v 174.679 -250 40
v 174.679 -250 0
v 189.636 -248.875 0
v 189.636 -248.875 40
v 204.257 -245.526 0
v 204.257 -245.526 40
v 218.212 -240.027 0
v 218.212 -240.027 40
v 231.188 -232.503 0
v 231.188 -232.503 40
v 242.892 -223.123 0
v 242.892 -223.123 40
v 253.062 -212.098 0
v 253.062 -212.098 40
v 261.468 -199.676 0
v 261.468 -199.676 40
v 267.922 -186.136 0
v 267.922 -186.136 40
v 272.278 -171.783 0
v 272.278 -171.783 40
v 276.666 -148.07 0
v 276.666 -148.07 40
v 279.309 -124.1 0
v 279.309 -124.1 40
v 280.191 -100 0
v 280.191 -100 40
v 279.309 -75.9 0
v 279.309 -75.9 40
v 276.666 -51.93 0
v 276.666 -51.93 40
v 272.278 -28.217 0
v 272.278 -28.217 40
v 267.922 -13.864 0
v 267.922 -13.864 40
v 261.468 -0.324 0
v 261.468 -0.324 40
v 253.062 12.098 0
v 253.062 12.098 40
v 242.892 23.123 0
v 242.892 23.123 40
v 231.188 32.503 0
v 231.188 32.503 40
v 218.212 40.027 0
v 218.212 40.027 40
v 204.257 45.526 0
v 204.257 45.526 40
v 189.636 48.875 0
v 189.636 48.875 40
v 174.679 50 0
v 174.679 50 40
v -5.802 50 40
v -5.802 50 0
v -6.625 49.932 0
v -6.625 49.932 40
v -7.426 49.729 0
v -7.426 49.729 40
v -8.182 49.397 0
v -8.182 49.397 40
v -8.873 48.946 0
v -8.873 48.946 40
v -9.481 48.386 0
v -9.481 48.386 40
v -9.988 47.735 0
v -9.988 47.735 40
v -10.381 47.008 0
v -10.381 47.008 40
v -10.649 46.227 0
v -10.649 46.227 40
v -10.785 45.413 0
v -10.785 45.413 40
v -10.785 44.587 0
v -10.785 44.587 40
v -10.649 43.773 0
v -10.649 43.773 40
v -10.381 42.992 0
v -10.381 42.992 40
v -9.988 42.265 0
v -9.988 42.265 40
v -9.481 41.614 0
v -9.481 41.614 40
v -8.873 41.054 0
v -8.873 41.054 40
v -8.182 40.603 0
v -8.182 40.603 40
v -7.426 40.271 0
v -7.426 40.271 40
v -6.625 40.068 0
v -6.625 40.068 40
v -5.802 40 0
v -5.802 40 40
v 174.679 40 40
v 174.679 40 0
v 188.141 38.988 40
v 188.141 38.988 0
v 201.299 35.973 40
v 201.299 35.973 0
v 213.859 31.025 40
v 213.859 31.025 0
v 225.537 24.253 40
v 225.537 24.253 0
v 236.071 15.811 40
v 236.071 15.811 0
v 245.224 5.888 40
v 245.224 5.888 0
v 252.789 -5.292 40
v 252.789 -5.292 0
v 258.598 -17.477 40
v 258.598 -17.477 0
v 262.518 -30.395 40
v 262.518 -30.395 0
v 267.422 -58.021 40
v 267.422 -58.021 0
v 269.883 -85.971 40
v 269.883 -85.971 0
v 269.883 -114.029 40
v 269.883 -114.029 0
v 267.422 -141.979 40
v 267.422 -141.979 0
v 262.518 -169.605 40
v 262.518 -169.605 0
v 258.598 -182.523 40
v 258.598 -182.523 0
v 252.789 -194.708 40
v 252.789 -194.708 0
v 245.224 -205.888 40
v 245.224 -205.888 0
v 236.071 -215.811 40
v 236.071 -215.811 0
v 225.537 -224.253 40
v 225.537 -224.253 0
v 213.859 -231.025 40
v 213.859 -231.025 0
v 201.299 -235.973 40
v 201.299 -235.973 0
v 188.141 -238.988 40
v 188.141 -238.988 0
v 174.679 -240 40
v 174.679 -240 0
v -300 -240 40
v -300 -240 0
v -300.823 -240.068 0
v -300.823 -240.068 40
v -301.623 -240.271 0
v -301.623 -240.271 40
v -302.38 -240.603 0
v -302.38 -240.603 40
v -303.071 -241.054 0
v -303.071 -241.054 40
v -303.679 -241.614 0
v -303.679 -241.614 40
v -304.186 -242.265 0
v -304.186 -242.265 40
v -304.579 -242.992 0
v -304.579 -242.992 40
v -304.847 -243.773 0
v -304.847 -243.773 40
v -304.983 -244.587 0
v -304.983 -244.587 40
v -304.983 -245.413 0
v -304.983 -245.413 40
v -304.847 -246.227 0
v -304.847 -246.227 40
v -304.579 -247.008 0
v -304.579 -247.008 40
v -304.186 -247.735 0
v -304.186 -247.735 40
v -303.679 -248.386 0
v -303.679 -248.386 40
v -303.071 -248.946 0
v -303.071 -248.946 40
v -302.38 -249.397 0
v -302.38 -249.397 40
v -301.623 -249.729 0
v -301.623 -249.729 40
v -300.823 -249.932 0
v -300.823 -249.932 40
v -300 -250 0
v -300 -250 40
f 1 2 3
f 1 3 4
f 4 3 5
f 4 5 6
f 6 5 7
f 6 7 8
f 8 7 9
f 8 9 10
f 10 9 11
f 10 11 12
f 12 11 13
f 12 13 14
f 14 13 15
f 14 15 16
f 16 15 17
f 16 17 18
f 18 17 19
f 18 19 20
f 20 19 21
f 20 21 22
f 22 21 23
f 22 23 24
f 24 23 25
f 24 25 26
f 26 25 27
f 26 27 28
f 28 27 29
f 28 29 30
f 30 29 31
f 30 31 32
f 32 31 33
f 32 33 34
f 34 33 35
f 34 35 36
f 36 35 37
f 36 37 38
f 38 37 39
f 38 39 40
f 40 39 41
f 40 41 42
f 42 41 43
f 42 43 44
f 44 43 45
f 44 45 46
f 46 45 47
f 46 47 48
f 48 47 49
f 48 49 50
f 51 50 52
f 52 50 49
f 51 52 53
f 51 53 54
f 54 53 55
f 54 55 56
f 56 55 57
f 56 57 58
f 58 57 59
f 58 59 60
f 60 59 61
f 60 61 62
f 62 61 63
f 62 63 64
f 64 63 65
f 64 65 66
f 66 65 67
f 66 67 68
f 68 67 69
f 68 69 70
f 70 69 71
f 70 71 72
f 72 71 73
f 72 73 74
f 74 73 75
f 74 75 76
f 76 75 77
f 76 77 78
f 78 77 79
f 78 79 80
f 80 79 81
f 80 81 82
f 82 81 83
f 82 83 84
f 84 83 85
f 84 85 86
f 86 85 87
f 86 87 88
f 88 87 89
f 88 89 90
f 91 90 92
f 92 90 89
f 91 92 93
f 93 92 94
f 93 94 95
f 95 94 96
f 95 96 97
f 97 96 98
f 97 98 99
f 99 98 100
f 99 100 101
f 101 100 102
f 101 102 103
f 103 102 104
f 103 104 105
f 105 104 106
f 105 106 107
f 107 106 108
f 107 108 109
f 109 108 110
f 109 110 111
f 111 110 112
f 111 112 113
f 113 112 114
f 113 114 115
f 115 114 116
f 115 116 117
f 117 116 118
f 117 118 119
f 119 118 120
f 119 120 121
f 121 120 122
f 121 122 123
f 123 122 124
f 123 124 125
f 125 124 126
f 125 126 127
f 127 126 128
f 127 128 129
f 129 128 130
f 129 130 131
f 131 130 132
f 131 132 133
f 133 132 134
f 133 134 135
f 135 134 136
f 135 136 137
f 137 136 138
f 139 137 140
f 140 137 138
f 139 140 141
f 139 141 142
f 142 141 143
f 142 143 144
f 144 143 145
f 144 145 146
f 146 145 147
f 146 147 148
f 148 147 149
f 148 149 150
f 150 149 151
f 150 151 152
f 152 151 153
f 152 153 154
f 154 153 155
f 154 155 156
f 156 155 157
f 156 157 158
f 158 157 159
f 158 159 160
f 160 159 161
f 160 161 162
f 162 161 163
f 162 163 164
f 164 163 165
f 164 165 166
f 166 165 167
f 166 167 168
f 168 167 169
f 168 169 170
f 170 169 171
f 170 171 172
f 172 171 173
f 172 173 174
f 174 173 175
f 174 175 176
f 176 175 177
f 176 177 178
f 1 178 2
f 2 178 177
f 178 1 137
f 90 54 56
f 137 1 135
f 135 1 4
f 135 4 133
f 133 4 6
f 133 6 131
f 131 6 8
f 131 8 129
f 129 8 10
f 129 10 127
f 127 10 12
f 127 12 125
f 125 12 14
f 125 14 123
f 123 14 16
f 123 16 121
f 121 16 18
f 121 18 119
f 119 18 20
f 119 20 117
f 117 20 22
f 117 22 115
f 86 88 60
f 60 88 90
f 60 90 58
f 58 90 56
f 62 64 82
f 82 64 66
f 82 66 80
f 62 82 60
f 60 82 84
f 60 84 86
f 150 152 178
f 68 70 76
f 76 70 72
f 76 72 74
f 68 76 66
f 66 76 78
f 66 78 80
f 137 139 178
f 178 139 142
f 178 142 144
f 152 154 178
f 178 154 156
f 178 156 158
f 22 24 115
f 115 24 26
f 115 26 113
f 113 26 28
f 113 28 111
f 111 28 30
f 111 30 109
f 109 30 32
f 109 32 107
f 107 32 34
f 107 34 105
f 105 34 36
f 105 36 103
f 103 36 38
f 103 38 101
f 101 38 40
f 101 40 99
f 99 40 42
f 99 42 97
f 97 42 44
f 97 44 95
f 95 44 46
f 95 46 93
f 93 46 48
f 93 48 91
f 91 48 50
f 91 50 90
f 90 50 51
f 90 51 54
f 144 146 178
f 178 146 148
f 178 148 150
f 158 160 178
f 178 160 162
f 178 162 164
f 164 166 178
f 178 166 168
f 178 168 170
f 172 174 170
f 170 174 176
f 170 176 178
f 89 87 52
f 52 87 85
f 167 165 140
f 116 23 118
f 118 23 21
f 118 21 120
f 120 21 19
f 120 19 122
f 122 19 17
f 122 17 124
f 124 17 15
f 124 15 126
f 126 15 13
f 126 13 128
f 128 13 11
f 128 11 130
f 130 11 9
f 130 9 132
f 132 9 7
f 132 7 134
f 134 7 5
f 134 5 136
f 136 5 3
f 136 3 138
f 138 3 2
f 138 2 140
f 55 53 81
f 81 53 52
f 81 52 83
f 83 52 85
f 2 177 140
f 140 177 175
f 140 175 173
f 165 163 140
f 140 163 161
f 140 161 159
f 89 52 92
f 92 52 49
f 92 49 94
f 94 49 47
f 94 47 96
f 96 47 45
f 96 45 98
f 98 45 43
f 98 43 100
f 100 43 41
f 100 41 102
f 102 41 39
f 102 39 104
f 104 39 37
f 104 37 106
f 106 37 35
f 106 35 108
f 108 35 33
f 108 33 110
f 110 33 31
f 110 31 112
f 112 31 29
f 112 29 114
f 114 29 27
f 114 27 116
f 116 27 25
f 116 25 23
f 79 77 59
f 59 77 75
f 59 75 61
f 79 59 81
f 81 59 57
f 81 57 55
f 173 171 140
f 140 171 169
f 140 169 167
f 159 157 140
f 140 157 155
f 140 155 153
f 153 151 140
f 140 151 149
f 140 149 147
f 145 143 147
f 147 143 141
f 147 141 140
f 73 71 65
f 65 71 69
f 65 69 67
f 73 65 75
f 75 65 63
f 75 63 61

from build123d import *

# Parameters (mm, degrees)
BOSS_EXTRUDE1_DEPTH = 40


with BuildPart() as part:
    # Sketch1 → Boss-Extrude1 (new body)
    with BuildSketch(Plane.XY):
        with BuildLine():
            Line((-5.802272282, 50), (174.679242578, 50))
            ThreePointArc((174.679242578, 50), (237.215894164, 28.0331161), (272.277838453, -28.216655834))
            ThreePointArc((272.277838453, -28.216655834), (280.191261544, -100), (272.277838453, -171.783344166))
            ThreePointArc((272.277838453, -171.783344166), (237.215894164, -228.0331161), (174.679242578, -250))
            Line((174.679242578, -250), (-300, -250))
            ThreePointArc((-300, -250), (-305, -245), (-300, -240))
            Line((-300, -240), (174.679242578, -240))
            ThreePointArc((174.679242578, -240), (230.962229006, -220.22980449), (262.517978866, -169.60500975))
            ThreePointArc((262.517978866, -169.60500975), (270.191261544, -100), (262.517978866, -30.39499025))
            ThreePointArc((262.517978866, -30.39499025), (230.962229006, 20.22980449), (174.679242578, 40))
            Line((174.679242578, 40), (-5.802272282, 40))
            ThreePointArc((-5.802272282, 40), (-10.802272282, 45), (-5.802272282, 50))
        make_face()
    extrude(amount=BOSS_EXTRUDE1_DEPTH)


solid = part.part
